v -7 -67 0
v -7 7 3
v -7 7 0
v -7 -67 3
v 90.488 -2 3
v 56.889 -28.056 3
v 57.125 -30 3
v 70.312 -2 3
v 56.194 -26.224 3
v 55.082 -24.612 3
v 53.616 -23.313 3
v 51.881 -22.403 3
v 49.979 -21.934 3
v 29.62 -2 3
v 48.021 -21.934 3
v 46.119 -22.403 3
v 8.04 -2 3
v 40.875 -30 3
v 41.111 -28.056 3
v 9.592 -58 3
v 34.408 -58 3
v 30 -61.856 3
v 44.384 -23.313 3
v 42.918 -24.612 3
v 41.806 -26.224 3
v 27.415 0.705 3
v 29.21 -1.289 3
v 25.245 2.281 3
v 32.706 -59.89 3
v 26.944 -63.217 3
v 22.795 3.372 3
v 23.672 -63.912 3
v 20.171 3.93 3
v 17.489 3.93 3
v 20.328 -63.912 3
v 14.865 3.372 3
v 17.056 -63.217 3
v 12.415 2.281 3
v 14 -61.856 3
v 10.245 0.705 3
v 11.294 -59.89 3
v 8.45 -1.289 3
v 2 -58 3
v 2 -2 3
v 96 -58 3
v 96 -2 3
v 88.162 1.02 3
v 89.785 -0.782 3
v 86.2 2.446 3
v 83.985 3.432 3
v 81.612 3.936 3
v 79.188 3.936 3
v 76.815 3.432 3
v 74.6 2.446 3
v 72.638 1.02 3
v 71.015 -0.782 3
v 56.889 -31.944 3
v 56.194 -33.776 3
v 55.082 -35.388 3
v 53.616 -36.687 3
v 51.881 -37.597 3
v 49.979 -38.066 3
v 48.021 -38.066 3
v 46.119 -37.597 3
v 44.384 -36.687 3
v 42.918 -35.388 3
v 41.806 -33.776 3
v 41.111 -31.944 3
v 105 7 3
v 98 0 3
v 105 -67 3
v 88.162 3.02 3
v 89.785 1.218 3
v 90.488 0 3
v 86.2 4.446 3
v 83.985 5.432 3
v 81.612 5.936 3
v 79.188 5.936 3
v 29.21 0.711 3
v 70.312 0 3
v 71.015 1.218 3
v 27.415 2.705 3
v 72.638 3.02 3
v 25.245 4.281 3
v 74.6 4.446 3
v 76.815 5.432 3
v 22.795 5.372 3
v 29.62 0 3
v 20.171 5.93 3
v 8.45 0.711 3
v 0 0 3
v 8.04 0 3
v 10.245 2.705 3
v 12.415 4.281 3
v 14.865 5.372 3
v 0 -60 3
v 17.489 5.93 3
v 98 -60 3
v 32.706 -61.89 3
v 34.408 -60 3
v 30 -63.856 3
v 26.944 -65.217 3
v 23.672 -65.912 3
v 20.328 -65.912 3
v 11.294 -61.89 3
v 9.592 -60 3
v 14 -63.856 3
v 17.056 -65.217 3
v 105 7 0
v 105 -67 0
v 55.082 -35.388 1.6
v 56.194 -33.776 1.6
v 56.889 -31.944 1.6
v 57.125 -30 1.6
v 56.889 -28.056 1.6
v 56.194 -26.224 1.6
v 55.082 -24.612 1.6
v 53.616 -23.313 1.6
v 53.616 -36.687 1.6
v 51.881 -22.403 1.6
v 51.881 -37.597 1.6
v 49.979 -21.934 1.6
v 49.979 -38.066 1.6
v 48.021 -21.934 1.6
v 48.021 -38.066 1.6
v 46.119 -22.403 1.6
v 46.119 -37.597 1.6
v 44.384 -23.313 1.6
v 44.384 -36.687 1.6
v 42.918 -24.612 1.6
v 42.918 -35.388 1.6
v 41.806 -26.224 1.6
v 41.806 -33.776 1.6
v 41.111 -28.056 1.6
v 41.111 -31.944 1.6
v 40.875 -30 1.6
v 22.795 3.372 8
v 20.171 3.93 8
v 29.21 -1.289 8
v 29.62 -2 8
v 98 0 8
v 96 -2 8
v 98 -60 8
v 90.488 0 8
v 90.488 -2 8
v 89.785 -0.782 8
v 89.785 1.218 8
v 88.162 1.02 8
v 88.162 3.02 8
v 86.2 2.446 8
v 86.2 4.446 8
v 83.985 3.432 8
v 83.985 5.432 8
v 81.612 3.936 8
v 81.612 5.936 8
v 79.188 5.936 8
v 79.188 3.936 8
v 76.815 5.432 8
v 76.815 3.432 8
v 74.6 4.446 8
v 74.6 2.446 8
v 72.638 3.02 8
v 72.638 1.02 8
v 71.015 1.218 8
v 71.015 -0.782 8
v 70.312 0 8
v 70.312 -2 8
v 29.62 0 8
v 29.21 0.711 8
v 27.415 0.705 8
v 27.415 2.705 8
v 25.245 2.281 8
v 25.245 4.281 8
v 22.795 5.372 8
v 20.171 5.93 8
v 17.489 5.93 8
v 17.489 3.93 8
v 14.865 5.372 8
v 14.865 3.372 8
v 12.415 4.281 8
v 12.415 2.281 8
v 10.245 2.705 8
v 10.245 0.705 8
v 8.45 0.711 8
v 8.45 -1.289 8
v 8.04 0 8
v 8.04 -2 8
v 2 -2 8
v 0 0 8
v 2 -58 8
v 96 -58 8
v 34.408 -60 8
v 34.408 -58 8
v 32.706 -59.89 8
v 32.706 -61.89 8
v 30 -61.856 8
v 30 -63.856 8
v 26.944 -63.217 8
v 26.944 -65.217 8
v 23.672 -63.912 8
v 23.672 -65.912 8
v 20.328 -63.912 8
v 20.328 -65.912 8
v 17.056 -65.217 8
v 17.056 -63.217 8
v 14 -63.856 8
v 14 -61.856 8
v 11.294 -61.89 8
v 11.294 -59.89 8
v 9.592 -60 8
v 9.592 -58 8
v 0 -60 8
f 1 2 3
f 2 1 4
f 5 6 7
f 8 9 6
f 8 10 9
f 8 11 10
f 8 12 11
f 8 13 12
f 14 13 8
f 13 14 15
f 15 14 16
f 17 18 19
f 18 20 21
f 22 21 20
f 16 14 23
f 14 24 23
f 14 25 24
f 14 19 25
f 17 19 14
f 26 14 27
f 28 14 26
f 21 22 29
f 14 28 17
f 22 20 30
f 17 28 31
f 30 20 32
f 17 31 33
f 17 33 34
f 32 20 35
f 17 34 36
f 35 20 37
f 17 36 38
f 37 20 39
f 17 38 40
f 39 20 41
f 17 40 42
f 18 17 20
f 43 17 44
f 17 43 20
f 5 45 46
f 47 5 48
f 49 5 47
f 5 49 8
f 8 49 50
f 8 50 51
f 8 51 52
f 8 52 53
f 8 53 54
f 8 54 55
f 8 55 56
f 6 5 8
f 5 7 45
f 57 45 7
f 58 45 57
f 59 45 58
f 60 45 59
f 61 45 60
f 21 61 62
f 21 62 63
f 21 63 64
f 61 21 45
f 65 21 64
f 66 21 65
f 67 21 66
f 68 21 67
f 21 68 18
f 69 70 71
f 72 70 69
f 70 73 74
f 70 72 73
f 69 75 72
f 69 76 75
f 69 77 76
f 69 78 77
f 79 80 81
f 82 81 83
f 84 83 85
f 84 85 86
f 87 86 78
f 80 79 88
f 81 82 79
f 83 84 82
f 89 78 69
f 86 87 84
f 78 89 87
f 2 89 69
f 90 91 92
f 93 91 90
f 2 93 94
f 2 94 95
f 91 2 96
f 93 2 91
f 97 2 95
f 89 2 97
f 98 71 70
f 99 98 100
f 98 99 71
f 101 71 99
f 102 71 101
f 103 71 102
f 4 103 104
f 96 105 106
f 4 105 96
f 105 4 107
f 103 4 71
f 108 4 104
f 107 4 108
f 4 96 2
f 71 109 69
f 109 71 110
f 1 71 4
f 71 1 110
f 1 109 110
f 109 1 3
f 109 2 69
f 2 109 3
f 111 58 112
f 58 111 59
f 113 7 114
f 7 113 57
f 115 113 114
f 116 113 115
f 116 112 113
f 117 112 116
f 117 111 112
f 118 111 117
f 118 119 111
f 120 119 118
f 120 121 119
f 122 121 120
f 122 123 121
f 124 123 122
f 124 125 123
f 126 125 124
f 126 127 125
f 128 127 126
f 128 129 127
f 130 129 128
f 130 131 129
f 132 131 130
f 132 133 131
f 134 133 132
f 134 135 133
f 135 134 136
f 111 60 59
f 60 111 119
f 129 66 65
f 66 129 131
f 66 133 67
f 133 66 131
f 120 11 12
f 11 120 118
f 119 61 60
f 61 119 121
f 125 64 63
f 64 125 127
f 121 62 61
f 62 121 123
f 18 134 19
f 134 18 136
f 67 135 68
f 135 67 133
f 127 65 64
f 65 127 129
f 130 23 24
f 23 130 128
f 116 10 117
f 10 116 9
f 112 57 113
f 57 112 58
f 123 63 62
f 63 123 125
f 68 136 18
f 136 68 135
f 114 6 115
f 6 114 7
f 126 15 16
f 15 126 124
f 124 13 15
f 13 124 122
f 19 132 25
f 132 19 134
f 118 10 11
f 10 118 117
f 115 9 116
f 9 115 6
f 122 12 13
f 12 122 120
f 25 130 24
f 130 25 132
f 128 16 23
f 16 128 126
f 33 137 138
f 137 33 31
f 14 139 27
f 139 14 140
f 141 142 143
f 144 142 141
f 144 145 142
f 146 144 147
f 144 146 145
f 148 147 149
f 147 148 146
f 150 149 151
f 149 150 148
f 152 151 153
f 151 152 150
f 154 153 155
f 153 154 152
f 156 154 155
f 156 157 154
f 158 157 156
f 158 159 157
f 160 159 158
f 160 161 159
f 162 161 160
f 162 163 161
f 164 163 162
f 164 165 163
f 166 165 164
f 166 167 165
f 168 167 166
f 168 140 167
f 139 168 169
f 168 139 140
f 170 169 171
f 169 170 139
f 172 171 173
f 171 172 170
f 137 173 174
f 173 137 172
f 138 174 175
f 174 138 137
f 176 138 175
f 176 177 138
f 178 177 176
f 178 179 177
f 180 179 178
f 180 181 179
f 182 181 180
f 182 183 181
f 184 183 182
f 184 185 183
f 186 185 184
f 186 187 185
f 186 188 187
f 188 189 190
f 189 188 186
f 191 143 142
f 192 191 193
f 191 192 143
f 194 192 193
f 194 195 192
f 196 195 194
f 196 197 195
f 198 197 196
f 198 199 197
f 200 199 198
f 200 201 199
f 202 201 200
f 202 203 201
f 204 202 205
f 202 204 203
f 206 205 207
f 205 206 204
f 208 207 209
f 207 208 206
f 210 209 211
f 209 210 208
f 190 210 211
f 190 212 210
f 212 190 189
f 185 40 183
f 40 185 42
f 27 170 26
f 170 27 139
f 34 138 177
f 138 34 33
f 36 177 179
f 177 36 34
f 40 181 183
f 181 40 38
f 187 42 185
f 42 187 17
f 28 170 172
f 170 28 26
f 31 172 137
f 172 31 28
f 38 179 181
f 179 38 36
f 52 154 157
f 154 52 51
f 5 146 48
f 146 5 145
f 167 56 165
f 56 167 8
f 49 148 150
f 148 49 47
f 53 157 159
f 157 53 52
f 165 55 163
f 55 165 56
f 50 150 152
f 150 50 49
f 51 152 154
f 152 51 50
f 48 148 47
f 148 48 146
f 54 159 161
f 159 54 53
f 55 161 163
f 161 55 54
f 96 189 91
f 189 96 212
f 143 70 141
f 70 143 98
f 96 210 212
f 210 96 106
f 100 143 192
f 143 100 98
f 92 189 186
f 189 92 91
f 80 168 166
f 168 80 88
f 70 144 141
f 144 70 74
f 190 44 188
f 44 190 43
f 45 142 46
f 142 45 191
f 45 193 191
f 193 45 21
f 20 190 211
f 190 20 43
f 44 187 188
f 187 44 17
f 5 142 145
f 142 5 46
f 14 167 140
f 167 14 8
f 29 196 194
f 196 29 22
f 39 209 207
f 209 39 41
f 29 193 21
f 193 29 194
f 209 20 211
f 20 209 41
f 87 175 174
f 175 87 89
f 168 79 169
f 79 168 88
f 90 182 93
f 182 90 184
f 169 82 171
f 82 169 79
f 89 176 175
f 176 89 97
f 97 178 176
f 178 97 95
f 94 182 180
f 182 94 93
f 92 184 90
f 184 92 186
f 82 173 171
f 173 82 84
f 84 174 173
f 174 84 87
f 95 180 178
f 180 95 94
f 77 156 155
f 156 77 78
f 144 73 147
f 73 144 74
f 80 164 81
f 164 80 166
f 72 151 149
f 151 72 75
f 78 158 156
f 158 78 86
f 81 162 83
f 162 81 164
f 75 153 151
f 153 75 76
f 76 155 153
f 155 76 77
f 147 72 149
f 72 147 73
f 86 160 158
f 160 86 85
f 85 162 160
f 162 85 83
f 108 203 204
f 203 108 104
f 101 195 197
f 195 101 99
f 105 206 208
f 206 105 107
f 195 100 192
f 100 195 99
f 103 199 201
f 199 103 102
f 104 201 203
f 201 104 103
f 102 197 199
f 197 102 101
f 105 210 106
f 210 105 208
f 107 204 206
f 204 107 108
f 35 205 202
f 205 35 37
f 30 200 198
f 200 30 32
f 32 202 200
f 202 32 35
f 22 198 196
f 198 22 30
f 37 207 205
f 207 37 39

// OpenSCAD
length = 93;
width = 55;
height = 3;
rimHeight = 5;
rimThickness = 2;
notchLength = 25;
//Based on washer size:
washerDiameter = 16.25;
washerHeight = 1.4;
rimPadding = 1;
totalHeight = height + rimHeight;

totalLength = length + rimThickness * 2 + rimPadding;
totalWidth = width + rimThickness * 2 + rimPadding;
extraLidForCircles = 7;

medicalTokenDiameter = 25.16 + .5;
medicalTokenOffset = 4;

adminTokenDiameter = 22.7 + .5;
adminTokenOffset = 4;

chiefTokenDiameter = 31.5 + .5;
chiefTokenOffset = 4;
mirror([0, 1, 0])
union()
{
    difference() {
        translate([-extraLidForCircles, -extraLidForCircles, 0])
            cube([totalLength + 2 * extraLidForCircles, totalWidth + 2 * extraLidForCircles, height]);
        translate([totalLength/2, totalWidth/2, height - washerHeight])
            cylinder(washerHeight, d=washerDiameter);
    }
    
    difference() {
        translate([0, 0, height])
            cube([totalLength, totalWidth, rimHeight]);
        translate([rimThickness, rimThickness, height])
            cube([length + rimPadding, width + rimPadding, rimHeight]);
        RightLengthCircles();
        LeftLengthCircles();
    }
    
    difference(){
        union()
        {
            translate([0, -rimThickness, 0])
                LeftLengthCircles();
            translate([0, rimThickness, 0])
                RightLengthCircles();
        }
        translate([0, 0, height])
            cube([totalLength, totalWidth, rimHeight]);
        RightLengthCircles();
        LeftLengthCircles();
    }
}


module LeftLengthCircles()
{
    spaceBetweenCircles = 3;
    
    translate(
        [
            spaceBetweenCircles + medicalTokenDiameter/2 + rimThickness + rimPadding,  
            medicalTokenDiameter/2 - medicalTokenOffset,
            height
        ])
        cylinder(rimHeight, d=medicalTokenDiameter);


    translate(
        [
            totalLength - (adminTokenDiameter/2 + spaceBetweenCircles + rimThickness + rimPadding),
            adminTokenDiameter/2 - adminTokenOffset,
            height
        ])
        cylinder(rimHeight, d=adminTokenDiameter);
        
        
    
}

module RightLengthCircles()
{
    spaceBetweenCircles = 3;
    translate(
        [
            spaceBetweenCircles + chiefTokenDiameter/2 + rimThickness + rimPadding,
            totalWidth - (chiefTokenDiameter/2 - chiefTokenOffset),
            height
        ])
        cylinder(rimHeight, d=chiefTokenDiameter);

    
}
